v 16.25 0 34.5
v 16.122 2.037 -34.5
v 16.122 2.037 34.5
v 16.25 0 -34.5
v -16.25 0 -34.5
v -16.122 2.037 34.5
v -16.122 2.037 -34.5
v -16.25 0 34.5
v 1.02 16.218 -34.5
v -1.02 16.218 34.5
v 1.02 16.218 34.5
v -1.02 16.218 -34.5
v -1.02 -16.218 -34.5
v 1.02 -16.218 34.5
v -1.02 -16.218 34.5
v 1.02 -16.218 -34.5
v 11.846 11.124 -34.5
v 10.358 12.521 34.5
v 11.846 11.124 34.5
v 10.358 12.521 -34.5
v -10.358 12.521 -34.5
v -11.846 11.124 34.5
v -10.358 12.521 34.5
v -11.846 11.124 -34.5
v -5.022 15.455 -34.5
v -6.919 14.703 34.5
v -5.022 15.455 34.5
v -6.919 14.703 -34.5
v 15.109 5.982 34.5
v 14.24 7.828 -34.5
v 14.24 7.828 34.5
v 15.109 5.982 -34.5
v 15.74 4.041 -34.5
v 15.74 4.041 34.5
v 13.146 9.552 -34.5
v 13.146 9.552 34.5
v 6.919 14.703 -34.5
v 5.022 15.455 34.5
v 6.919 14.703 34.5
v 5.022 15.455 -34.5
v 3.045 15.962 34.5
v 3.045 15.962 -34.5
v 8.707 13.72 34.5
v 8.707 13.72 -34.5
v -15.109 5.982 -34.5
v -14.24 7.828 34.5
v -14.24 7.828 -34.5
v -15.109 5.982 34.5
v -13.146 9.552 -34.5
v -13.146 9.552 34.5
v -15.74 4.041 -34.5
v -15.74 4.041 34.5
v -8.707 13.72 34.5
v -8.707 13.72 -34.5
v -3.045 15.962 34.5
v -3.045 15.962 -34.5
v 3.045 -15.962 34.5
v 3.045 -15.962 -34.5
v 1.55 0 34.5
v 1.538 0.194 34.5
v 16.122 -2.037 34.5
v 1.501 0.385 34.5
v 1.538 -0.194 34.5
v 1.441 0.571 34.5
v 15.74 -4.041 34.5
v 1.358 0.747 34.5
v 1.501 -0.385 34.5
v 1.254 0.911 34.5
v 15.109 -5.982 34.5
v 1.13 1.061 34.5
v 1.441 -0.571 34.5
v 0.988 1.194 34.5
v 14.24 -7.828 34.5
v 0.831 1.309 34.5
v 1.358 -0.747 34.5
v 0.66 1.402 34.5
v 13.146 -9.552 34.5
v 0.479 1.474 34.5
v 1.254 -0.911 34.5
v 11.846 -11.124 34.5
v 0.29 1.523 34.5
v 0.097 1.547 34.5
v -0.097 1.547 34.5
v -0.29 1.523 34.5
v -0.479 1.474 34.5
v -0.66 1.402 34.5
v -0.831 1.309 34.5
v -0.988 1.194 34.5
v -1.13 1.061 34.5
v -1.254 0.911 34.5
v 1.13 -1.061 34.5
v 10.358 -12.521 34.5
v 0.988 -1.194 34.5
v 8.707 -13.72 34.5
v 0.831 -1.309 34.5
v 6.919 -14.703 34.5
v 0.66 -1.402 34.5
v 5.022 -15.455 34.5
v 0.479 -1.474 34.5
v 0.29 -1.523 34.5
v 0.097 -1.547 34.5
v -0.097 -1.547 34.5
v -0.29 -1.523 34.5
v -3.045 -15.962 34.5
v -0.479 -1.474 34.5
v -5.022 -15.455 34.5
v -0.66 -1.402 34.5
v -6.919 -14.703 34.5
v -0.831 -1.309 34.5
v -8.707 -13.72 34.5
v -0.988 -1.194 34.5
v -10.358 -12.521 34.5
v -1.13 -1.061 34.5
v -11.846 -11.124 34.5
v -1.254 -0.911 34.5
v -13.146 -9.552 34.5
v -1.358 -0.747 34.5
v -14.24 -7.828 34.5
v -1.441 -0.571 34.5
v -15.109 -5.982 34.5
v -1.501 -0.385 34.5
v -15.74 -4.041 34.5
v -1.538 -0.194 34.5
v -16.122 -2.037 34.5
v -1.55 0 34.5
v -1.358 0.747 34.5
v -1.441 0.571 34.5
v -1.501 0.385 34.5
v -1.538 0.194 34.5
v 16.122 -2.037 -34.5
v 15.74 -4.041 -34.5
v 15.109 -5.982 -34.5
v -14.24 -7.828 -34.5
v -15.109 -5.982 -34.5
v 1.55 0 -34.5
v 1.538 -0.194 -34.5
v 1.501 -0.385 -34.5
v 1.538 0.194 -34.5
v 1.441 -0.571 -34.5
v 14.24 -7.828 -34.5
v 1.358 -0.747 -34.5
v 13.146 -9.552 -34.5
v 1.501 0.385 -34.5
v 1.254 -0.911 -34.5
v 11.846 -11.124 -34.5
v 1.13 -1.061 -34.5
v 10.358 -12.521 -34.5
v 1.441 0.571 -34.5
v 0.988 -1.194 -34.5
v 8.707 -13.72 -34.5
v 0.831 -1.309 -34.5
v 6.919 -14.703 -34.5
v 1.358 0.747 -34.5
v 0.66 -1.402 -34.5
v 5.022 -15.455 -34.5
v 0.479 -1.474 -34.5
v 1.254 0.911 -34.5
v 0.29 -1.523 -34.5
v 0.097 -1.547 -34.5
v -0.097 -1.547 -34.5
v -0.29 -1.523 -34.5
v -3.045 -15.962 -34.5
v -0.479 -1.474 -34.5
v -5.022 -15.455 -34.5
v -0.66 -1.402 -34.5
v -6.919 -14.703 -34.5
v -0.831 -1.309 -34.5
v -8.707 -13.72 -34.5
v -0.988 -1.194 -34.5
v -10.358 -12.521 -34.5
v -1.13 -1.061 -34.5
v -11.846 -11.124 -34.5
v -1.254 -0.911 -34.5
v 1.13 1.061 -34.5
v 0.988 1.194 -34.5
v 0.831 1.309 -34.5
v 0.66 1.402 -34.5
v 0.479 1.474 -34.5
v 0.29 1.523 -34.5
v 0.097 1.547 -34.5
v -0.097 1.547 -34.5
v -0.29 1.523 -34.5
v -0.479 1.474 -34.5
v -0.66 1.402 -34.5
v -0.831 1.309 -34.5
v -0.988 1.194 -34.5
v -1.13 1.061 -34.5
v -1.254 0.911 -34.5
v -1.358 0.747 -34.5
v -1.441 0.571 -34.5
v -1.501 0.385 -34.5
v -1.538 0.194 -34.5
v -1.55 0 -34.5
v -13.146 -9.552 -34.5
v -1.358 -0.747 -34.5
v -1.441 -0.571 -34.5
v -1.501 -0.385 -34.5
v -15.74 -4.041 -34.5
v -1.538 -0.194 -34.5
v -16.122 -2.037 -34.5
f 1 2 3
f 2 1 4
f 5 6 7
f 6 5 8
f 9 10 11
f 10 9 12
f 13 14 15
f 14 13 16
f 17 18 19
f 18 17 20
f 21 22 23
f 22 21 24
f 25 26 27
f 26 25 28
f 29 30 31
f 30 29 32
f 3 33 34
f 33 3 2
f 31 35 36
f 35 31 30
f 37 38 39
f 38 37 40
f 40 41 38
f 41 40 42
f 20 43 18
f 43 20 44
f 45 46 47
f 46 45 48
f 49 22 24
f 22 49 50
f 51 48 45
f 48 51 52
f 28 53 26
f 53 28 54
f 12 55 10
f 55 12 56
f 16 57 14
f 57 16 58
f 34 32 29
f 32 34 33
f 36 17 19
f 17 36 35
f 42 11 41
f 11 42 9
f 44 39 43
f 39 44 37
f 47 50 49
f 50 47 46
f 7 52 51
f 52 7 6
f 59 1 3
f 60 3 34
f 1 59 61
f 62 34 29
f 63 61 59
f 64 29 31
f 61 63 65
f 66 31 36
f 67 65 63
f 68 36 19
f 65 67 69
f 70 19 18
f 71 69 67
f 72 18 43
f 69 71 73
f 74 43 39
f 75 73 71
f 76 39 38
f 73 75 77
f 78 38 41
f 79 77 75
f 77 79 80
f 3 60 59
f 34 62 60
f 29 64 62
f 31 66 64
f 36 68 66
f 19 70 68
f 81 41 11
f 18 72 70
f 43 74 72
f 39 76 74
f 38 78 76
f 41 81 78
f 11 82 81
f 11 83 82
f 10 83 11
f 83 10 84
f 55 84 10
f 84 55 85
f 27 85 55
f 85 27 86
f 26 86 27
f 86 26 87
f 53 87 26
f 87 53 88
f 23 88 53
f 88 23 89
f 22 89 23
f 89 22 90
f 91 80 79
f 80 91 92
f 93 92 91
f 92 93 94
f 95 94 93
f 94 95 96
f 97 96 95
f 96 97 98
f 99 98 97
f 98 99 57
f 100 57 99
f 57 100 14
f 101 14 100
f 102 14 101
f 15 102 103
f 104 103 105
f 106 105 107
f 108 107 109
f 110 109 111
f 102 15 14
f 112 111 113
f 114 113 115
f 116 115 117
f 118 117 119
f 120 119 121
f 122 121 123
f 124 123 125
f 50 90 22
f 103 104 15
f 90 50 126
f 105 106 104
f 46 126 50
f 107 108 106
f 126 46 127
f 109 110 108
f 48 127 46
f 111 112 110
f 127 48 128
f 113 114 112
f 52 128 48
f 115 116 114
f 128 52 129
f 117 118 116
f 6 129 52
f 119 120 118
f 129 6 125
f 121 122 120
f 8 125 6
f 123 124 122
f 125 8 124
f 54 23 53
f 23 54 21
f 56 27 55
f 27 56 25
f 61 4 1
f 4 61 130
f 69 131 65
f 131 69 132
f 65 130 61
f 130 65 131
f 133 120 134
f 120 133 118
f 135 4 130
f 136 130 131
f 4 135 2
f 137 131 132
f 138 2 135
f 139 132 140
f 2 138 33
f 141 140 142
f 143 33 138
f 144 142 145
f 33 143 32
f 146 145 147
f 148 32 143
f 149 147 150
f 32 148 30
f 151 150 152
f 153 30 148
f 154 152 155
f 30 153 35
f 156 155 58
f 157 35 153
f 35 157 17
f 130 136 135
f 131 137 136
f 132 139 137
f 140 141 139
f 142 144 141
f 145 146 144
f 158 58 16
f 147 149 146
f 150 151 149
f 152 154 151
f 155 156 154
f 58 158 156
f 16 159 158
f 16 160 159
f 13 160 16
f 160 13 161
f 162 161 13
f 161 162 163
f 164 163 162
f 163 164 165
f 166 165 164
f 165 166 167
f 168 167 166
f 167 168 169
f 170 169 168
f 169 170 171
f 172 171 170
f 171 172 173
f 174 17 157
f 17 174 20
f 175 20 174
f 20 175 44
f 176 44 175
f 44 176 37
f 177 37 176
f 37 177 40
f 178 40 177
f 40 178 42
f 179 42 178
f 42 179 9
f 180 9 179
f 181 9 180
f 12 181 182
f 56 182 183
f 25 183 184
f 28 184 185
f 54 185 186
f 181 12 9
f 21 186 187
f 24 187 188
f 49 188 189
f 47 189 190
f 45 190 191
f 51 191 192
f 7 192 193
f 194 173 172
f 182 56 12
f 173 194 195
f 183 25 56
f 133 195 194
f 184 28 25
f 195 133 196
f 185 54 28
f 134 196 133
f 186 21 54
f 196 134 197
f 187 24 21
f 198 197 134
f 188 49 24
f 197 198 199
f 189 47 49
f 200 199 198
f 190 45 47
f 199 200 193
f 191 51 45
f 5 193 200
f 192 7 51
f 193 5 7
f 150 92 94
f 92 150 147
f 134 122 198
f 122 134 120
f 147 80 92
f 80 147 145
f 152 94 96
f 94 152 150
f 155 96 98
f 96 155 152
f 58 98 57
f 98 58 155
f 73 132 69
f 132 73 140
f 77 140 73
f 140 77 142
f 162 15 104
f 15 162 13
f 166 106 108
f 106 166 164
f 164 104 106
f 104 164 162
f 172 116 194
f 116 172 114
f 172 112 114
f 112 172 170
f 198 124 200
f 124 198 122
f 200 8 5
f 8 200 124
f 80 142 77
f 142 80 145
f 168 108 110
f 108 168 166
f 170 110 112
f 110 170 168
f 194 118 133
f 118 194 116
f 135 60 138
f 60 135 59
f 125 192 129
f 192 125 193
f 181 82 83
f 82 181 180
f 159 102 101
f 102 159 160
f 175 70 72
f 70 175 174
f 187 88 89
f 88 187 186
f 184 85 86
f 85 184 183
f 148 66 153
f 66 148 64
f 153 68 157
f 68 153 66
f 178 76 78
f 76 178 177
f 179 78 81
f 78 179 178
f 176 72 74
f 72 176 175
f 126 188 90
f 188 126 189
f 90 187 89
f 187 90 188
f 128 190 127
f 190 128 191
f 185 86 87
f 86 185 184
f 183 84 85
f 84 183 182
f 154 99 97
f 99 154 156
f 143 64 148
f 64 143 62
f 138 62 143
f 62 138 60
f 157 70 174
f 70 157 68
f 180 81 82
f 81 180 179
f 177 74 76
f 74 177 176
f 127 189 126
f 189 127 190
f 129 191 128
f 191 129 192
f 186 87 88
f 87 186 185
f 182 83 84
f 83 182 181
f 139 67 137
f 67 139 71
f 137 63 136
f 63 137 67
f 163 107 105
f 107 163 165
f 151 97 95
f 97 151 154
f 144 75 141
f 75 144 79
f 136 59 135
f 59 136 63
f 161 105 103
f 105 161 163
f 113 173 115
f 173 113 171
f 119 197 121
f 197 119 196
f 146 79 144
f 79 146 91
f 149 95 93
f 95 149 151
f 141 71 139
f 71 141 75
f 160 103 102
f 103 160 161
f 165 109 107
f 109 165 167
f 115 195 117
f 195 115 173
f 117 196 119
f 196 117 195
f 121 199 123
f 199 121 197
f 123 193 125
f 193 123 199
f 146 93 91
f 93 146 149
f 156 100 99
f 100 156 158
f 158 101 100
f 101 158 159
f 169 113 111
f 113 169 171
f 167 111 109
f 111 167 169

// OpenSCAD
$fn = 50;


difference() {
	union() {
		translate(v = [0, 0, -34.5000000000]) {
			cylinder(h = 69, r = 16.2500000000);
		}
	}
	union() {
		translate(v = [0, 0, -100.0000000000]) {
			cylinder(h = 200, r = 1.5500000000);
		}
	}
}
